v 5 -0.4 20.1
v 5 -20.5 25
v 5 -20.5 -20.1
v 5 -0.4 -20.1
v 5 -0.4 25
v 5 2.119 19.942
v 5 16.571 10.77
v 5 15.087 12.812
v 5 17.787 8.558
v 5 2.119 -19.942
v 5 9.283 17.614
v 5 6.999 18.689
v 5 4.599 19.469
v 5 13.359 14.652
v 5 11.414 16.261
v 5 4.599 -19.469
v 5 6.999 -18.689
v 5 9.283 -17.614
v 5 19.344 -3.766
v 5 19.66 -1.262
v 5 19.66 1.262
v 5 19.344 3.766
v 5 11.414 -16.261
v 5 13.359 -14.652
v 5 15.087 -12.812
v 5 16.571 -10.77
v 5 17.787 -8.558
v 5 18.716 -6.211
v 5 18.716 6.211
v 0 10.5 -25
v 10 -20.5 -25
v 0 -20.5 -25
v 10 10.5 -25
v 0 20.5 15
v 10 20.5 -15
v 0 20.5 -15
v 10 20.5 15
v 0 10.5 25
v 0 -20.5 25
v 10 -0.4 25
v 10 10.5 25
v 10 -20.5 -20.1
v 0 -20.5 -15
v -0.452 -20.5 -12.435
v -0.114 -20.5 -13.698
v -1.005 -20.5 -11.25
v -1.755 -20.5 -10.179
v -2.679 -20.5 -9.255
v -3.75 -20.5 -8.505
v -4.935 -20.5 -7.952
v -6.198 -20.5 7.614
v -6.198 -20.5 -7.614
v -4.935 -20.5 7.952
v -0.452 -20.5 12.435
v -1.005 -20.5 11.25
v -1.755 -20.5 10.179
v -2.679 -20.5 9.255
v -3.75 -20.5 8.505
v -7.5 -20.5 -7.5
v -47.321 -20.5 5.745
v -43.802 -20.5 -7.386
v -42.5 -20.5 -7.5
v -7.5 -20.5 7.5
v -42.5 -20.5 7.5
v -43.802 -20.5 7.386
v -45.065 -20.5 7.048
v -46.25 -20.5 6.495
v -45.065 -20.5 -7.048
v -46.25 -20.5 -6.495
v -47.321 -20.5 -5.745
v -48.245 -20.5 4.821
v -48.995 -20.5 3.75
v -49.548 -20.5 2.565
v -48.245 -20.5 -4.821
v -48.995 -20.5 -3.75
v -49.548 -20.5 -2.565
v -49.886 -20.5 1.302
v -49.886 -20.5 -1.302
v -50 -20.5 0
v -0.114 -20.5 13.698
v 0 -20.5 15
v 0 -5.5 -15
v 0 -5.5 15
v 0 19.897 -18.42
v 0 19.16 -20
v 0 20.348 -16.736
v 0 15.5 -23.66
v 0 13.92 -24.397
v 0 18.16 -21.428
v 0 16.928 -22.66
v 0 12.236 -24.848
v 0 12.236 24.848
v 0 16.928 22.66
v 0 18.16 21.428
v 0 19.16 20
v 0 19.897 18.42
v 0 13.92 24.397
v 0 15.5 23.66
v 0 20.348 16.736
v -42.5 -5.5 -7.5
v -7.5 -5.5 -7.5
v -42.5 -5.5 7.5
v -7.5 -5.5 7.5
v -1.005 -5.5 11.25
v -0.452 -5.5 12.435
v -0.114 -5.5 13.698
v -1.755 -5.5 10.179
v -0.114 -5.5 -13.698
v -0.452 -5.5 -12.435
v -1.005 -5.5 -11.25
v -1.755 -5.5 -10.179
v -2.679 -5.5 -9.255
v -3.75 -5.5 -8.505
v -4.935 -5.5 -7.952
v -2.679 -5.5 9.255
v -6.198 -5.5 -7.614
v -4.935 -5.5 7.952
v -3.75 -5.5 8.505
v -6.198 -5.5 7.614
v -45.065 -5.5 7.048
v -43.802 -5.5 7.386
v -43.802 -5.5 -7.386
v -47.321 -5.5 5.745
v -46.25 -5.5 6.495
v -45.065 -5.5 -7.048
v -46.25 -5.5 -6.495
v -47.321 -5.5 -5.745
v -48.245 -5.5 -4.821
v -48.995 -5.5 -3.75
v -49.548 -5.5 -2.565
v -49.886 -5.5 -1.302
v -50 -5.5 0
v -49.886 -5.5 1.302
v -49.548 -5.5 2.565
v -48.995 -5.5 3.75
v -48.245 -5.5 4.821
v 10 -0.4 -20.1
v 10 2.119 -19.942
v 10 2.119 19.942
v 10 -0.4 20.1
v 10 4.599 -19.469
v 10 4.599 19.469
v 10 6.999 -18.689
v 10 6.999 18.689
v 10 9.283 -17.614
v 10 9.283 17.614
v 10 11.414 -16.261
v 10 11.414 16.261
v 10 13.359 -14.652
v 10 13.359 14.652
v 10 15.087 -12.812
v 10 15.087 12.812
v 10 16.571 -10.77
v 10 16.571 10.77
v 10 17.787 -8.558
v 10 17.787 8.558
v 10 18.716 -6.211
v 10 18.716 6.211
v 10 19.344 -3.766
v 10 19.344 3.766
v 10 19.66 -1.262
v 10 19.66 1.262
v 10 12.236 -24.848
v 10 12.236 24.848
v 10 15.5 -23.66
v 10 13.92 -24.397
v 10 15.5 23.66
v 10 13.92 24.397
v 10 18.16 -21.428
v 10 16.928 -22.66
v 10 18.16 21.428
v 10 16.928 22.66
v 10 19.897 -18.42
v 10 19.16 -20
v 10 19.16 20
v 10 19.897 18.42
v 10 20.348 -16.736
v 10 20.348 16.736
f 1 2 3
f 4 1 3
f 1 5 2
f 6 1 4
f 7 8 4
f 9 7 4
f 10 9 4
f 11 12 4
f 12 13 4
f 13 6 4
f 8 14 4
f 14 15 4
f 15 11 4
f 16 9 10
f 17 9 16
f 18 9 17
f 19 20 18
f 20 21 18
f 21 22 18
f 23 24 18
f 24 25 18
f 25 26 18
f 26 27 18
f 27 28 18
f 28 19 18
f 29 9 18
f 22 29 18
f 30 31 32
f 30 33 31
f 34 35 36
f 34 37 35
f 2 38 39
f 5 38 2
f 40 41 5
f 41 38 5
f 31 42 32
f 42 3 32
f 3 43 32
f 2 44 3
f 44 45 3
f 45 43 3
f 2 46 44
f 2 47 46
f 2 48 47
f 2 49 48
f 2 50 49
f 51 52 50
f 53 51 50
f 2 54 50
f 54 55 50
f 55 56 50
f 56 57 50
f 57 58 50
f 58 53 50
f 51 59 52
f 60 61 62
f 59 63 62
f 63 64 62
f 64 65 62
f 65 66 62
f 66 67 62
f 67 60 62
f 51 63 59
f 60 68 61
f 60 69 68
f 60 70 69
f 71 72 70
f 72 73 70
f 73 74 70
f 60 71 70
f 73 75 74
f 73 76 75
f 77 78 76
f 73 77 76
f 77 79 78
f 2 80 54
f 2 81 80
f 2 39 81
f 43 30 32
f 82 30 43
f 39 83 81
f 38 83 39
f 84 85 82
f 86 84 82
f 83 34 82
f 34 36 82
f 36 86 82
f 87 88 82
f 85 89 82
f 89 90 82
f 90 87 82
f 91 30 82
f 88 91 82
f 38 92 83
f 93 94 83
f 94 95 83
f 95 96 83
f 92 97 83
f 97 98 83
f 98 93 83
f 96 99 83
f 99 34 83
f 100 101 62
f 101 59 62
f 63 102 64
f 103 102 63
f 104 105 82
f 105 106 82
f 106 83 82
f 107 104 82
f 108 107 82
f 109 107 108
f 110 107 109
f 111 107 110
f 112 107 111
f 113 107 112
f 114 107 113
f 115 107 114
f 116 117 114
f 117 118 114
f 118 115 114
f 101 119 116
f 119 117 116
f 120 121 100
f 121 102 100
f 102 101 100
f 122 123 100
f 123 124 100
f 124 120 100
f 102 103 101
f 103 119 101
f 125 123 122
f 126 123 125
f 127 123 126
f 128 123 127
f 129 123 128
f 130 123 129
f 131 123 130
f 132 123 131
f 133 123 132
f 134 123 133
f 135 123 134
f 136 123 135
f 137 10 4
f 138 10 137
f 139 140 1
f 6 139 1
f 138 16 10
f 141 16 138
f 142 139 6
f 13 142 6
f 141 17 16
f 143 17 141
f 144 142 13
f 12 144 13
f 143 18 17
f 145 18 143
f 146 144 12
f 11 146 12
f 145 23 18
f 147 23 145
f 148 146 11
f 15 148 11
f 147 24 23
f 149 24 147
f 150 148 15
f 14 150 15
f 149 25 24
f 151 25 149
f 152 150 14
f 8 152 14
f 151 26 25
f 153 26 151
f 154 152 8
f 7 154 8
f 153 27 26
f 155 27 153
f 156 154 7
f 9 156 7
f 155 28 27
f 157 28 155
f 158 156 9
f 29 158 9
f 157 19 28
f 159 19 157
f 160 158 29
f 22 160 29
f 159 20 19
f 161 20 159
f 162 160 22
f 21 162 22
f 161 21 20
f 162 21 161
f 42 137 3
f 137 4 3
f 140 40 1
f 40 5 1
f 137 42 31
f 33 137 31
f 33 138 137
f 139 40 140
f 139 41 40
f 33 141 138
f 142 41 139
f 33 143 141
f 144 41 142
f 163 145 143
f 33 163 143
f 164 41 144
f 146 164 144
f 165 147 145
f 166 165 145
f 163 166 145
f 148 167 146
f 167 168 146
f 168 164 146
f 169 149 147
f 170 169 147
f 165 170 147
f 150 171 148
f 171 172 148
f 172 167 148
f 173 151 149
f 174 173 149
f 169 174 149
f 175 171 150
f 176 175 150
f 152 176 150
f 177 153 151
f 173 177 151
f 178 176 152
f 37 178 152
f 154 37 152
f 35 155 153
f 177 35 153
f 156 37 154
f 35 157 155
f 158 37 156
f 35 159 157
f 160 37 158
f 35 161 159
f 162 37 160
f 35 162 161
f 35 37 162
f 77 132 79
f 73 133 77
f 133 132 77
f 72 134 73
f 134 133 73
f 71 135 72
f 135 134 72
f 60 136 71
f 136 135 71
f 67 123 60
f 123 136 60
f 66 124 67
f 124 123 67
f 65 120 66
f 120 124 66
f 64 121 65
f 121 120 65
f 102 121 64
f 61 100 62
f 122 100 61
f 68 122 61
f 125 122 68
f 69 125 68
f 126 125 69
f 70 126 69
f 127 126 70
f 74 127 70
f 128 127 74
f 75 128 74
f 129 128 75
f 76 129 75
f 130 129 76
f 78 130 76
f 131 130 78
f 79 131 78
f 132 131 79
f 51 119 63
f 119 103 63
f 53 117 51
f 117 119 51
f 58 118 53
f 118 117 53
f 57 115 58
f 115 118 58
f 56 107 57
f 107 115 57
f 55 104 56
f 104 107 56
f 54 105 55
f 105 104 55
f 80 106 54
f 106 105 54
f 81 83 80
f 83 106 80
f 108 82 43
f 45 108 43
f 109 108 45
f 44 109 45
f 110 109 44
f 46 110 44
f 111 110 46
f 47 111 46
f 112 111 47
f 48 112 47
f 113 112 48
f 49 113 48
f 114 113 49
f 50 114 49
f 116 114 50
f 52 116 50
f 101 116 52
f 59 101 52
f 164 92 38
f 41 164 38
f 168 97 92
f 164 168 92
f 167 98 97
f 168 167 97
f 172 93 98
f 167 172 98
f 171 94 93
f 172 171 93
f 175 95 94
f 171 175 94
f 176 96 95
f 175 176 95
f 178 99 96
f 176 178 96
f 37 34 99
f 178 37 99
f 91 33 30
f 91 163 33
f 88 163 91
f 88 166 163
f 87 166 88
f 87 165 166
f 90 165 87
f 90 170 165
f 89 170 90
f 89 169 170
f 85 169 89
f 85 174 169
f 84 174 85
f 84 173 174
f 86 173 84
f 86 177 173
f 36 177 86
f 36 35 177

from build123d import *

# Parameters (mm, degrees)
SKETCH1_W           = 50
SKETCH1_H           = 41
BOSS_EXTRUDE1_DEPTH = 5
SKETCH2_W           = 15
SKETCH2_H           = 15
BOSS_EXTRUDE2_DEPTH = 50
BOSS_EXTRUDE3_DEPTH = 5
FILLET1_START       = -20.5
FILLET1_DEPTH       = 41
FILLET1_2_DEPTH     = 15
FILLET2_R           = 10


with BuildPart() as part:
    # Sketch1 → Boss-Extrude1 (new body)
    with BuildSketch(Plane(origin=(0, 0, 0), x_dir=(0, 0, -1), z_dir=(1, 0, 0))):
        Rectangle(SKETCH1_W, SKETCH1_H)
    extrude(amount=BOSS_EXTRUDE1_DEPTH)

    # Sketch2 → Boss-Extrude2 (add)
    with BuildSketch(Plane.ZY):
        with Locations((0, -13)):
            Rectangle(SKETCH2_W, SKETCH2_H)
    extrude(amount=BOSS_EXTRUDE2_DEPTH)

    # Sketch3 → Boss-Extrude3 (add)
    with BuildSketch(Plane(origin=(5, 0, 0), x_dir=(0, 0, -1), z_dir=(1, 0, 0))):
        with BuildLine():
            Line((25, 20.5), (-25, 20.5))
            Line((-25, 20.5), (-25, -0.4))
            Line((-25, -0.4), (-20.1, -0.4))
            ThreePointArc((-20.1, -0.4), (0, 19.7), (20.1, -0.4))
            Line((20.1, -0.4), (20.1, -20.5))
            Line((20.1, -20.5), (25, -20.5))
            Line((25, -20.5), (25, 20.5))
        make_face()
    extrude(amount=BOSS_EXTRUDE3_DEPTH)

    # Fillet1: read off the stored shape, not the designer's step
    # Fillet1 outline → Fillet1 (cut)
    with BuildSketch(Plane(origin=(0, 0, 0), x_dir=(1, 0, 0), z_dir=(0, 1, 0)).offset(FILLET1_START)):
        with BuildLine():
            Line((-50, 7.5), (-50, 0))
            ThreePointArc((-50, 0), (-47.803300859, 5.303300859), (-42.5, 7.5))
            Line((-42.5, 7.5), (-50, 7.5))
        make_face()
        with BuildLine():
            ThreePointArc((-42.5, -7.5), (-47.803300859, -5.303300859), (-50, 0))
            Line((-50, 0), (-50, -7.5))
            Line((-50, -7.5), (-42.5, -7.5))
        make_face()
    extrude(amount=FILLET1_DEPTH, mode=Mode.SUBTRACT)

    # Fillet1 2 outline → Fillet1 2 (add)
    with BuildSketch(Plane(origin=(0, 0, 0), x_dir=(1, 0, 0), z_dir=(0, 1, 0)).offset(FILLET1_START)):
        with BuildLine():
            Line((0, -7.5), (-7.5, -7.5))
            ThreePointArc((-7.5, -7.5), (-2.196699141, -9.696699141), (0, -15))
            Line((0, -15), (0, -7.5))
        make_face()
        with BuildLine():
            ThreePointArc((0, 15), (-2.196699141, 9.696699141), (-7.5, 7.5))
            Line((-7.5, 7.5), (0, 7.5))
            Line((0, 7.5), (0, 15))
        make_face()
    extrude(amount=FILLET1_2_DEPTH)

    # Fillet2
    fillet2_edges = [part.edges().sort_by_distance(p)[0] for p in [
        (5, 20.5, 25),
        (5, 20.5, -25),
    ]]
    fillet(fillet2_edges, radius=FILLET2_R)


solid = part.part
